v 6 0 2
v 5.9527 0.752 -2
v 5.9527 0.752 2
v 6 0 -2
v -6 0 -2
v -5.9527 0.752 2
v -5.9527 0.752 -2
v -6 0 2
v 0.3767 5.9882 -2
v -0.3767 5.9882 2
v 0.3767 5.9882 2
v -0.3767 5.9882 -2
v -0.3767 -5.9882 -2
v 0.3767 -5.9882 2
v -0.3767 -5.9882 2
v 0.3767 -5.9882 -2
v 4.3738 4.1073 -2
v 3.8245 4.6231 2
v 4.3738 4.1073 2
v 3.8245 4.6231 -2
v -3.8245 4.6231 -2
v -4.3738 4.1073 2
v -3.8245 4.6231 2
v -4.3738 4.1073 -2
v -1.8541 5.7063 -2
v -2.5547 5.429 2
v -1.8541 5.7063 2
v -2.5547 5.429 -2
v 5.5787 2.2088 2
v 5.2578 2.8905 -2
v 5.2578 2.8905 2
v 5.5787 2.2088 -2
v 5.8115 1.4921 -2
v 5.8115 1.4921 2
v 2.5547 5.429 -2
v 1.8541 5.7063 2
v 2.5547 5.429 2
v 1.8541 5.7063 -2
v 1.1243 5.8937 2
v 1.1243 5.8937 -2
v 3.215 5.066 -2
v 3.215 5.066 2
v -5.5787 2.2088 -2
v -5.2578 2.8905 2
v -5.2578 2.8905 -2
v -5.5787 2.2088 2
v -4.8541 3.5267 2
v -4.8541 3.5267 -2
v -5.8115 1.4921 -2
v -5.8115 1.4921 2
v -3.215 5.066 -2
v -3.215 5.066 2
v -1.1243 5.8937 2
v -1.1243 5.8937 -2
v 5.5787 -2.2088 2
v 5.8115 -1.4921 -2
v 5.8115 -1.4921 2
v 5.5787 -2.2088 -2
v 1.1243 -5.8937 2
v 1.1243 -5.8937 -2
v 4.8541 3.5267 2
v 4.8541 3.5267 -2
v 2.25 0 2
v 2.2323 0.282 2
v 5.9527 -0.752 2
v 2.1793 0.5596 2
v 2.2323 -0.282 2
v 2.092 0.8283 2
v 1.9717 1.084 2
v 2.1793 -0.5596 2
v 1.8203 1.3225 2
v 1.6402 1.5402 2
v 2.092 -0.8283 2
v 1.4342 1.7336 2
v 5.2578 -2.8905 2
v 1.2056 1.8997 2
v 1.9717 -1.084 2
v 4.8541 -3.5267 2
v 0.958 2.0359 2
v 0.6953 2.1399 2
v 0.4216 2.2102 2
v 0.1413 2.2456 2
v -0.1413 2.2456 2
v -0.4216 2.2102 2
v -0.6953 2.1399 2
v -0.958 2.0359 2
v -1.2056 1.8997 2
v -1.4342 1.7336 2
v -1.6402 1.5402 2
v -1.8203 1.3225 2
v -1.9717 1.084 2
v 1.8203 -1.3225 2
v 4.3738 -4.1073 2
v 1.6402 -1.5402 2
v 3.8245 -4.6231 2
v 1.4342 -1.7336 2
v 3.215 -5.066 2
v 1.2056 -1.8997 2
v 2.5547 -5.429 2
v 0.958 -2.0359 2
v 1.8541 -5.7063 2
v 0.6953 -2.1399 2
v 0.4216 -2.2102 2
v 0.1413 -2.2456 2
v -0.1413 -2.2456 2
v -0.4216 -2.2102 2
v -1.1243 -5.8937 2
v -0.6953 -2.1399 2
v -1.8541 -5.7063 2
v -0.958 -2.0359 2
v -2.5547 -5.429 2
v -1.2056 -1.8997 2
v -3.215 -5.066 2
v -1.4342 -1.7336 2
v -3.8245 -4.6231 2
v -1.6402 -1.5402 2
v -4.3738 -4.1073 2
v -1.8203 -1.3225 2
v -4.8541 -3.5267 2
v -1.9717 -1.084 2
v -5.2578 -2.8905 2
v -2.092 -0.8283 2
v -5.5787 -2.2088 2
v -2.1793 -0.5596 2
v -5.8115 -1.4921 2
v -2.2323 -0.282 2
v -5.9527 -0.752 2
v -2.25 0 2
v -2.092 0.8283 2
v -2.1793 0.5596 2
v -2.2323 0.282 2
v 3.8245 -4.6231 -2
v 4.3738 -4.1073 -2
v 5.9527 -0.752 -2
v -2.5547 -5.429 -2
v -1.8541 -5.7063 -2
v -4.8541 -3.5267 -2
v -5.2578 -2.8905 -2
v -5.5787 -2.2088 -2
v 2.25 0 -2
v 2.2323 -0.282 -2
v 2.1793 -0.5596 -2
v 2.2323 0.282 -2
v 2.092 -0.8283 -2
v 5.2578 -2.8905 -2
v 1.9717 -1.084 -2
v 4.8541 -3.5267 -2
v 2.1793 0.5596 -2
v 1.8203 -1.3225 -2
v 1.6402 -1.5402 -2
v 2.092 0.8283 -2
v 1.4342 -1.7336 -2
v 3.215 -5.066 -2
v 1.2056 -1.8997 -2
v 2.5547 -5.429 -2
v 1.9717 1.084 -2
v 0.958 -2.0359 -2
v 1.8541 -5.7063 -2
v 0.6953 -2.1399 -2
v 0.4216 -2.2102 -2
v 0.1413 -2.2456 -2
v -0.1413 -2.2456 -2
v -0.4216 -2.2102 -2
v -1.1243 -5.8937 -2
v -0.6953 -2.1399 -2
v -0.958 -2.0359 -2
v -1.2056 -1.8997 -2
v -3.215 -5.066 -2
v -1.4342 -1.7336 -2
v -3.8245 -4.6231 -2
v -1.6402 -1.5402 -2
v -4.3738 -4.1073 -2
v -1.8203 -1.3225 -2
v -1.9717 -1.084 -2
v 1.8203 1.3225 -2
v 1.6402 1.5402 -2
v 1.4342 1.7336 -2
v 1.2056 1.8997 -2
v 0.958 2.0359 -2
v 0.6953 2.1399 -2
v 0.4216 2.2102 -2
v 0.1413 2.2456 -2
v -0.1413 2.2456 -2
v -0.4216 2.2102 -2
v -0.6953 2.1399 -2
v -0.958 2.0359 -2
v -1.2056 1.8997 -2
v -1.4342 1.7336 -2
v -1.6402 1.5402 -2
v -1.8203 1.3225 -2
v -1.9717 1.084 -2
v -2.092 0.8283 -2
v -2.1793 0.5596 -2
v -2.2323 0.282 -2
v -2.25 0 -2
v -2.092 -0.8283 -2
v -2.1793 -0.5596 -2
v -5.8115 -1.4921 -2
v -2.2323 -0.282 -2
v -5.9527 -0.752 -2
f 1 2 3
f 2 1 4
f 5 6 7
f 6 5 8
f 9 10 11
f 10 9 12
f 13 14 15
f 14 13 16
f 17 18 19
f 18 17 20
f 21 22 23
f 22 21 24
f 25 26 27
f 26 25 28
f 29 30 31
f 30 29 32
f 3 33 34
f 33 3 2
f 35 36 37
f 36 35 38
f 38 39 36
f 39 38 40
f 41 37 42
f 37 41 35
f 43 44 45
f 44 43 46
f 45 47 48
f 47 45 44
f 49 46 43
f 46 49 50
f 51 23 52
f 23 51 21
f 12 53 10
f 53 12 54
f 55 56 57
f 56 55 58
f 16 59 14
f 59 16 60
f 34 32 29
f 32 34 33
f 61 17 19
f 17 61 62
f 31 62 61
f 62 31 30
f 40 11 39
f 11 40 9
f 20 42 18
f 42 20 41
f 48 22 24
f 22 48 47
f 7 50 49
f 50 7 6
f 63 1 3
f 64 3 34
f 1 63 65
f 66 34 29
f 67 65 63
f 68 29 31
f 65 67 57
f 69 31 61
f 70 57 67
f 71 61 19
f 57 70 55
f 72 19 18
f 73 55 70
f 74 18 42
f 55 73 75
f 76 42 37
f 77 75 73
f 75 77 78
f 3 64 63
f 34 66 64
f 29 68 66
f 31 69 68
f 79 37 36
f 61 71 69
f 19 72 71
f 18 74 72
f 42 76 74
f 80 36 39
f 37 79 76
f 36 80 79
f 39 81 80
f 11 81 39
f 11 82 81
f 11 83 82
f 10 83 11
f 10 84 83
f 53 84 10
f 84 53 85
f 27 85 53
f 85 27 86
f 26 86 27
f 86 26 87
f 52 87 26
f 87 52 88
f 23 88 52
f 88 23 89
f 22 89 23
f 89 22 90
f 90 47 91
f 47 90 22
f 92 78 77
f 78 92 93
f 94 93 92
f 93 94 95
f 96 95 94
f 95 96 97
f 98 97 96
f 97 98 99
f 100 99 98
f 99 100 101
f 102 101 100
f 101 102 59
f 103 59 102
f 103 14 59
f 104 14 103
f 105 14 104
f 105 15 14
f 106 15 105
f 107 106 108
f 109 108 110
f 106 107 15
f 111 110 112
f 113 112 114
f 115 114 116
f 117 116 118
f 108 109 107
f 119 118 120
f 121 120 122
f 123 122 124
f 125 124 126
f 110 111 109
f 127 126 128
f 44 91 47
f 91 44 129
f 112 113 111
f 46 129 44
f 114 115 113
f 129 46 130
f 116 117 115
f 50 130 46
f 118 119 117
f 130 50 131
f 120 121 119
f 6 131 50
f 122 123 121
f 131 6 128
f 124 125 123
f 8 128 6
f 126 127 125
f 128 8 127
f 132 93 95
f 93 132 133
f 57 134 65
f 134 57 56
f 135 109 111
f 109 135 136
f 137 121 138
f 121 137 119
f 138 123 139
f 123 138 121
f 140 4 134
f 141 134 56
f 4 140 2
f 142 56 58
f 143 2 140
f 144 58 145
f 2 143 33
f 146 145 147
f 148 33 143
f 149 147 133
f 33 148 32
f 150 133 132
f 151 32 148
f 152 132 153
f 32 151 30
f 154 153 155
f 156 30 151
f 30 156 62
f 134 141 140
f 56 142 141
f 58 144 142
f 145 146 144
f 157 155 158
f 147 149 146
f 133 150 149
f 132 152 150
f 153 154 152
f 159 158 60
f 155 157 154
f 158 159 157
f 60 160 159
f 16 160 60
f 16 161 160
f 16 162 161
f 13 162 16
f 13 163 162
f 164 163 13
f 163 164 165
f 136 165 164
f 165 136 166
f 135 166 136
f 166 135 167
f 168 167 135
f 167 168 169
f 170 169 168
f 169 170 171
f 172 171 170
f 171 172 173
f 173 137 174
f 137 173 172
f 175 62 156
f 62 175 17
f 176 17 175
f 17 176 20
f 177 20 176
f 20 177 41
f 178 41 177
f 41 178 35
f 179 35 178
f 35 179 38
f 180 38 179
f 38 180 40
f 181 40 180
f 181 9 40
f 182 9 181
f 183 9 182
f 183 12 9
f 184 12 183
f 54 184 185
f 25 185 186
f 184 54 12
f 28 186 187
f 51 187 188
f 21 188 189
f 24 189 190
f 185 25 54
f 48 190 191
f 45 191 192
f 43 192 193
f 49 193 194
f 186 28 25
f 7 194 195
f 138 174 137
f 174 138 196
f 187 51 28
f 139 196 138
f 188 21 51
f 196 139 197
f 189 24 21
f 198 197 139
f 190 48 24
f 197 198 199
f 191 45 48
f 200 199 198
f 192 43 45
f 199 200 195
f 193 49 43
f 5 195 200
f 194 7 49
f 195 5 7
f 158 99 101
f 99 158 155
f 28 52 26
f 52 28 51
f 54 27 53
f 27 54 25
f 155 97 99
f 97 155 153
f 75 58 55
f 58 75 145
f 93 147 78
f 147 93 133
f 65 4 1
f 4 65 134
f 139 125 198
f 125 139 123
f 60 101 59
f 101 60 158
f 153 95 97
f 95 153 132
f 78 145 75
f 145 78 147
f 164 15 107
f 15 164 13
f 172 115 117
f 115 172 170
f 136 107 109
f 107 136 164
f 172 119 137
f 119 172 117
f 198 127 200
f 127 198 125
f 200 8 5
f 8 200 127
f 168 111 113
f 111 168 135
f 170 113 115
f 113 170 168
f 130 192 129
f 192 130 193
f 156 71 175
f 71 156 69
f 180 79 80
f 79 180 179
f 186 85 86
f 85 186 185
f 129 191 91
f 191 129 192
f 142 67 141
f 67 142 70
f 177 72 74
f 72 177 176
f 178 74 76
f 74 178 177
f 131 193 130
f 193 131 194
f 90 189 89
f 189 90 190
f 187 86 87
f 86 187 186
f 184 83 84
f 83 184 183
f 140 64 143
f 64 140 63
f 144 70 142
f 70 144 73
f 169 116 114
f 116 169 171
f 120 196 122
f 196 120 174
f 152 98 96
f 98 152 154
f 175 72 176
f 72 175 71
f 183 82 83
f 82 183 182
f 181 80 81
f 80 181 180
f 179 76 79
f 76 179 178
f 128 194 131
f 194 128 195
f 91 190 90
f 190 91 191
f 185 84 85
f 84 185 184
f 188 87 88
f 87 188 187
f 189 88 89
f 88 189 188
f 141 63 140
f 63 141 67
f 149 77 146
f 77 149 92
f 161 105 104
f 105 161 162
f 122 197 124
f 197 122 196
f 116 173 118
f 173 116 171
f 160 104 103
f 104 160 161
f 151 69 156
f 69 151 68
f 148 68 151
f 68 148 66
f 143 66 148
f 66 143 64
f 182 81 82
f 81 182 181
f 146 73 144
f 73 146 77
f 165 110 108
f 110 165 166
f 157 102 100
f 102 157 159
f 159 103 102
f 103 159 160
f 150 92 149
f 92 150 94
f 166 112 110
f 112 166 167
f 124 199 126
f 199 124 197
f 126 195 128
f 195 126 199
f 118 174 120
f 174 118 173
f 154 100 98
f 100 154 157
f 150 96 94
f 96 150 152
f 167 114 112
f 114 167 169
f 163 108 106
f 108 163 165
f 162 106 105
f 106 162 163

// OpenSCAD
$fn = 50;


difference() {
	union() {
		translate(v = [0, 0, -2.0000000000]) {
			cylinder(h = 4, r = 6.0000000000);
		}
	}
	union() {
		translate(v = [0, 0, -100.0000000000]) {
			cylinder(h = 200, r = 2.2500000000);
		}
	}
}
